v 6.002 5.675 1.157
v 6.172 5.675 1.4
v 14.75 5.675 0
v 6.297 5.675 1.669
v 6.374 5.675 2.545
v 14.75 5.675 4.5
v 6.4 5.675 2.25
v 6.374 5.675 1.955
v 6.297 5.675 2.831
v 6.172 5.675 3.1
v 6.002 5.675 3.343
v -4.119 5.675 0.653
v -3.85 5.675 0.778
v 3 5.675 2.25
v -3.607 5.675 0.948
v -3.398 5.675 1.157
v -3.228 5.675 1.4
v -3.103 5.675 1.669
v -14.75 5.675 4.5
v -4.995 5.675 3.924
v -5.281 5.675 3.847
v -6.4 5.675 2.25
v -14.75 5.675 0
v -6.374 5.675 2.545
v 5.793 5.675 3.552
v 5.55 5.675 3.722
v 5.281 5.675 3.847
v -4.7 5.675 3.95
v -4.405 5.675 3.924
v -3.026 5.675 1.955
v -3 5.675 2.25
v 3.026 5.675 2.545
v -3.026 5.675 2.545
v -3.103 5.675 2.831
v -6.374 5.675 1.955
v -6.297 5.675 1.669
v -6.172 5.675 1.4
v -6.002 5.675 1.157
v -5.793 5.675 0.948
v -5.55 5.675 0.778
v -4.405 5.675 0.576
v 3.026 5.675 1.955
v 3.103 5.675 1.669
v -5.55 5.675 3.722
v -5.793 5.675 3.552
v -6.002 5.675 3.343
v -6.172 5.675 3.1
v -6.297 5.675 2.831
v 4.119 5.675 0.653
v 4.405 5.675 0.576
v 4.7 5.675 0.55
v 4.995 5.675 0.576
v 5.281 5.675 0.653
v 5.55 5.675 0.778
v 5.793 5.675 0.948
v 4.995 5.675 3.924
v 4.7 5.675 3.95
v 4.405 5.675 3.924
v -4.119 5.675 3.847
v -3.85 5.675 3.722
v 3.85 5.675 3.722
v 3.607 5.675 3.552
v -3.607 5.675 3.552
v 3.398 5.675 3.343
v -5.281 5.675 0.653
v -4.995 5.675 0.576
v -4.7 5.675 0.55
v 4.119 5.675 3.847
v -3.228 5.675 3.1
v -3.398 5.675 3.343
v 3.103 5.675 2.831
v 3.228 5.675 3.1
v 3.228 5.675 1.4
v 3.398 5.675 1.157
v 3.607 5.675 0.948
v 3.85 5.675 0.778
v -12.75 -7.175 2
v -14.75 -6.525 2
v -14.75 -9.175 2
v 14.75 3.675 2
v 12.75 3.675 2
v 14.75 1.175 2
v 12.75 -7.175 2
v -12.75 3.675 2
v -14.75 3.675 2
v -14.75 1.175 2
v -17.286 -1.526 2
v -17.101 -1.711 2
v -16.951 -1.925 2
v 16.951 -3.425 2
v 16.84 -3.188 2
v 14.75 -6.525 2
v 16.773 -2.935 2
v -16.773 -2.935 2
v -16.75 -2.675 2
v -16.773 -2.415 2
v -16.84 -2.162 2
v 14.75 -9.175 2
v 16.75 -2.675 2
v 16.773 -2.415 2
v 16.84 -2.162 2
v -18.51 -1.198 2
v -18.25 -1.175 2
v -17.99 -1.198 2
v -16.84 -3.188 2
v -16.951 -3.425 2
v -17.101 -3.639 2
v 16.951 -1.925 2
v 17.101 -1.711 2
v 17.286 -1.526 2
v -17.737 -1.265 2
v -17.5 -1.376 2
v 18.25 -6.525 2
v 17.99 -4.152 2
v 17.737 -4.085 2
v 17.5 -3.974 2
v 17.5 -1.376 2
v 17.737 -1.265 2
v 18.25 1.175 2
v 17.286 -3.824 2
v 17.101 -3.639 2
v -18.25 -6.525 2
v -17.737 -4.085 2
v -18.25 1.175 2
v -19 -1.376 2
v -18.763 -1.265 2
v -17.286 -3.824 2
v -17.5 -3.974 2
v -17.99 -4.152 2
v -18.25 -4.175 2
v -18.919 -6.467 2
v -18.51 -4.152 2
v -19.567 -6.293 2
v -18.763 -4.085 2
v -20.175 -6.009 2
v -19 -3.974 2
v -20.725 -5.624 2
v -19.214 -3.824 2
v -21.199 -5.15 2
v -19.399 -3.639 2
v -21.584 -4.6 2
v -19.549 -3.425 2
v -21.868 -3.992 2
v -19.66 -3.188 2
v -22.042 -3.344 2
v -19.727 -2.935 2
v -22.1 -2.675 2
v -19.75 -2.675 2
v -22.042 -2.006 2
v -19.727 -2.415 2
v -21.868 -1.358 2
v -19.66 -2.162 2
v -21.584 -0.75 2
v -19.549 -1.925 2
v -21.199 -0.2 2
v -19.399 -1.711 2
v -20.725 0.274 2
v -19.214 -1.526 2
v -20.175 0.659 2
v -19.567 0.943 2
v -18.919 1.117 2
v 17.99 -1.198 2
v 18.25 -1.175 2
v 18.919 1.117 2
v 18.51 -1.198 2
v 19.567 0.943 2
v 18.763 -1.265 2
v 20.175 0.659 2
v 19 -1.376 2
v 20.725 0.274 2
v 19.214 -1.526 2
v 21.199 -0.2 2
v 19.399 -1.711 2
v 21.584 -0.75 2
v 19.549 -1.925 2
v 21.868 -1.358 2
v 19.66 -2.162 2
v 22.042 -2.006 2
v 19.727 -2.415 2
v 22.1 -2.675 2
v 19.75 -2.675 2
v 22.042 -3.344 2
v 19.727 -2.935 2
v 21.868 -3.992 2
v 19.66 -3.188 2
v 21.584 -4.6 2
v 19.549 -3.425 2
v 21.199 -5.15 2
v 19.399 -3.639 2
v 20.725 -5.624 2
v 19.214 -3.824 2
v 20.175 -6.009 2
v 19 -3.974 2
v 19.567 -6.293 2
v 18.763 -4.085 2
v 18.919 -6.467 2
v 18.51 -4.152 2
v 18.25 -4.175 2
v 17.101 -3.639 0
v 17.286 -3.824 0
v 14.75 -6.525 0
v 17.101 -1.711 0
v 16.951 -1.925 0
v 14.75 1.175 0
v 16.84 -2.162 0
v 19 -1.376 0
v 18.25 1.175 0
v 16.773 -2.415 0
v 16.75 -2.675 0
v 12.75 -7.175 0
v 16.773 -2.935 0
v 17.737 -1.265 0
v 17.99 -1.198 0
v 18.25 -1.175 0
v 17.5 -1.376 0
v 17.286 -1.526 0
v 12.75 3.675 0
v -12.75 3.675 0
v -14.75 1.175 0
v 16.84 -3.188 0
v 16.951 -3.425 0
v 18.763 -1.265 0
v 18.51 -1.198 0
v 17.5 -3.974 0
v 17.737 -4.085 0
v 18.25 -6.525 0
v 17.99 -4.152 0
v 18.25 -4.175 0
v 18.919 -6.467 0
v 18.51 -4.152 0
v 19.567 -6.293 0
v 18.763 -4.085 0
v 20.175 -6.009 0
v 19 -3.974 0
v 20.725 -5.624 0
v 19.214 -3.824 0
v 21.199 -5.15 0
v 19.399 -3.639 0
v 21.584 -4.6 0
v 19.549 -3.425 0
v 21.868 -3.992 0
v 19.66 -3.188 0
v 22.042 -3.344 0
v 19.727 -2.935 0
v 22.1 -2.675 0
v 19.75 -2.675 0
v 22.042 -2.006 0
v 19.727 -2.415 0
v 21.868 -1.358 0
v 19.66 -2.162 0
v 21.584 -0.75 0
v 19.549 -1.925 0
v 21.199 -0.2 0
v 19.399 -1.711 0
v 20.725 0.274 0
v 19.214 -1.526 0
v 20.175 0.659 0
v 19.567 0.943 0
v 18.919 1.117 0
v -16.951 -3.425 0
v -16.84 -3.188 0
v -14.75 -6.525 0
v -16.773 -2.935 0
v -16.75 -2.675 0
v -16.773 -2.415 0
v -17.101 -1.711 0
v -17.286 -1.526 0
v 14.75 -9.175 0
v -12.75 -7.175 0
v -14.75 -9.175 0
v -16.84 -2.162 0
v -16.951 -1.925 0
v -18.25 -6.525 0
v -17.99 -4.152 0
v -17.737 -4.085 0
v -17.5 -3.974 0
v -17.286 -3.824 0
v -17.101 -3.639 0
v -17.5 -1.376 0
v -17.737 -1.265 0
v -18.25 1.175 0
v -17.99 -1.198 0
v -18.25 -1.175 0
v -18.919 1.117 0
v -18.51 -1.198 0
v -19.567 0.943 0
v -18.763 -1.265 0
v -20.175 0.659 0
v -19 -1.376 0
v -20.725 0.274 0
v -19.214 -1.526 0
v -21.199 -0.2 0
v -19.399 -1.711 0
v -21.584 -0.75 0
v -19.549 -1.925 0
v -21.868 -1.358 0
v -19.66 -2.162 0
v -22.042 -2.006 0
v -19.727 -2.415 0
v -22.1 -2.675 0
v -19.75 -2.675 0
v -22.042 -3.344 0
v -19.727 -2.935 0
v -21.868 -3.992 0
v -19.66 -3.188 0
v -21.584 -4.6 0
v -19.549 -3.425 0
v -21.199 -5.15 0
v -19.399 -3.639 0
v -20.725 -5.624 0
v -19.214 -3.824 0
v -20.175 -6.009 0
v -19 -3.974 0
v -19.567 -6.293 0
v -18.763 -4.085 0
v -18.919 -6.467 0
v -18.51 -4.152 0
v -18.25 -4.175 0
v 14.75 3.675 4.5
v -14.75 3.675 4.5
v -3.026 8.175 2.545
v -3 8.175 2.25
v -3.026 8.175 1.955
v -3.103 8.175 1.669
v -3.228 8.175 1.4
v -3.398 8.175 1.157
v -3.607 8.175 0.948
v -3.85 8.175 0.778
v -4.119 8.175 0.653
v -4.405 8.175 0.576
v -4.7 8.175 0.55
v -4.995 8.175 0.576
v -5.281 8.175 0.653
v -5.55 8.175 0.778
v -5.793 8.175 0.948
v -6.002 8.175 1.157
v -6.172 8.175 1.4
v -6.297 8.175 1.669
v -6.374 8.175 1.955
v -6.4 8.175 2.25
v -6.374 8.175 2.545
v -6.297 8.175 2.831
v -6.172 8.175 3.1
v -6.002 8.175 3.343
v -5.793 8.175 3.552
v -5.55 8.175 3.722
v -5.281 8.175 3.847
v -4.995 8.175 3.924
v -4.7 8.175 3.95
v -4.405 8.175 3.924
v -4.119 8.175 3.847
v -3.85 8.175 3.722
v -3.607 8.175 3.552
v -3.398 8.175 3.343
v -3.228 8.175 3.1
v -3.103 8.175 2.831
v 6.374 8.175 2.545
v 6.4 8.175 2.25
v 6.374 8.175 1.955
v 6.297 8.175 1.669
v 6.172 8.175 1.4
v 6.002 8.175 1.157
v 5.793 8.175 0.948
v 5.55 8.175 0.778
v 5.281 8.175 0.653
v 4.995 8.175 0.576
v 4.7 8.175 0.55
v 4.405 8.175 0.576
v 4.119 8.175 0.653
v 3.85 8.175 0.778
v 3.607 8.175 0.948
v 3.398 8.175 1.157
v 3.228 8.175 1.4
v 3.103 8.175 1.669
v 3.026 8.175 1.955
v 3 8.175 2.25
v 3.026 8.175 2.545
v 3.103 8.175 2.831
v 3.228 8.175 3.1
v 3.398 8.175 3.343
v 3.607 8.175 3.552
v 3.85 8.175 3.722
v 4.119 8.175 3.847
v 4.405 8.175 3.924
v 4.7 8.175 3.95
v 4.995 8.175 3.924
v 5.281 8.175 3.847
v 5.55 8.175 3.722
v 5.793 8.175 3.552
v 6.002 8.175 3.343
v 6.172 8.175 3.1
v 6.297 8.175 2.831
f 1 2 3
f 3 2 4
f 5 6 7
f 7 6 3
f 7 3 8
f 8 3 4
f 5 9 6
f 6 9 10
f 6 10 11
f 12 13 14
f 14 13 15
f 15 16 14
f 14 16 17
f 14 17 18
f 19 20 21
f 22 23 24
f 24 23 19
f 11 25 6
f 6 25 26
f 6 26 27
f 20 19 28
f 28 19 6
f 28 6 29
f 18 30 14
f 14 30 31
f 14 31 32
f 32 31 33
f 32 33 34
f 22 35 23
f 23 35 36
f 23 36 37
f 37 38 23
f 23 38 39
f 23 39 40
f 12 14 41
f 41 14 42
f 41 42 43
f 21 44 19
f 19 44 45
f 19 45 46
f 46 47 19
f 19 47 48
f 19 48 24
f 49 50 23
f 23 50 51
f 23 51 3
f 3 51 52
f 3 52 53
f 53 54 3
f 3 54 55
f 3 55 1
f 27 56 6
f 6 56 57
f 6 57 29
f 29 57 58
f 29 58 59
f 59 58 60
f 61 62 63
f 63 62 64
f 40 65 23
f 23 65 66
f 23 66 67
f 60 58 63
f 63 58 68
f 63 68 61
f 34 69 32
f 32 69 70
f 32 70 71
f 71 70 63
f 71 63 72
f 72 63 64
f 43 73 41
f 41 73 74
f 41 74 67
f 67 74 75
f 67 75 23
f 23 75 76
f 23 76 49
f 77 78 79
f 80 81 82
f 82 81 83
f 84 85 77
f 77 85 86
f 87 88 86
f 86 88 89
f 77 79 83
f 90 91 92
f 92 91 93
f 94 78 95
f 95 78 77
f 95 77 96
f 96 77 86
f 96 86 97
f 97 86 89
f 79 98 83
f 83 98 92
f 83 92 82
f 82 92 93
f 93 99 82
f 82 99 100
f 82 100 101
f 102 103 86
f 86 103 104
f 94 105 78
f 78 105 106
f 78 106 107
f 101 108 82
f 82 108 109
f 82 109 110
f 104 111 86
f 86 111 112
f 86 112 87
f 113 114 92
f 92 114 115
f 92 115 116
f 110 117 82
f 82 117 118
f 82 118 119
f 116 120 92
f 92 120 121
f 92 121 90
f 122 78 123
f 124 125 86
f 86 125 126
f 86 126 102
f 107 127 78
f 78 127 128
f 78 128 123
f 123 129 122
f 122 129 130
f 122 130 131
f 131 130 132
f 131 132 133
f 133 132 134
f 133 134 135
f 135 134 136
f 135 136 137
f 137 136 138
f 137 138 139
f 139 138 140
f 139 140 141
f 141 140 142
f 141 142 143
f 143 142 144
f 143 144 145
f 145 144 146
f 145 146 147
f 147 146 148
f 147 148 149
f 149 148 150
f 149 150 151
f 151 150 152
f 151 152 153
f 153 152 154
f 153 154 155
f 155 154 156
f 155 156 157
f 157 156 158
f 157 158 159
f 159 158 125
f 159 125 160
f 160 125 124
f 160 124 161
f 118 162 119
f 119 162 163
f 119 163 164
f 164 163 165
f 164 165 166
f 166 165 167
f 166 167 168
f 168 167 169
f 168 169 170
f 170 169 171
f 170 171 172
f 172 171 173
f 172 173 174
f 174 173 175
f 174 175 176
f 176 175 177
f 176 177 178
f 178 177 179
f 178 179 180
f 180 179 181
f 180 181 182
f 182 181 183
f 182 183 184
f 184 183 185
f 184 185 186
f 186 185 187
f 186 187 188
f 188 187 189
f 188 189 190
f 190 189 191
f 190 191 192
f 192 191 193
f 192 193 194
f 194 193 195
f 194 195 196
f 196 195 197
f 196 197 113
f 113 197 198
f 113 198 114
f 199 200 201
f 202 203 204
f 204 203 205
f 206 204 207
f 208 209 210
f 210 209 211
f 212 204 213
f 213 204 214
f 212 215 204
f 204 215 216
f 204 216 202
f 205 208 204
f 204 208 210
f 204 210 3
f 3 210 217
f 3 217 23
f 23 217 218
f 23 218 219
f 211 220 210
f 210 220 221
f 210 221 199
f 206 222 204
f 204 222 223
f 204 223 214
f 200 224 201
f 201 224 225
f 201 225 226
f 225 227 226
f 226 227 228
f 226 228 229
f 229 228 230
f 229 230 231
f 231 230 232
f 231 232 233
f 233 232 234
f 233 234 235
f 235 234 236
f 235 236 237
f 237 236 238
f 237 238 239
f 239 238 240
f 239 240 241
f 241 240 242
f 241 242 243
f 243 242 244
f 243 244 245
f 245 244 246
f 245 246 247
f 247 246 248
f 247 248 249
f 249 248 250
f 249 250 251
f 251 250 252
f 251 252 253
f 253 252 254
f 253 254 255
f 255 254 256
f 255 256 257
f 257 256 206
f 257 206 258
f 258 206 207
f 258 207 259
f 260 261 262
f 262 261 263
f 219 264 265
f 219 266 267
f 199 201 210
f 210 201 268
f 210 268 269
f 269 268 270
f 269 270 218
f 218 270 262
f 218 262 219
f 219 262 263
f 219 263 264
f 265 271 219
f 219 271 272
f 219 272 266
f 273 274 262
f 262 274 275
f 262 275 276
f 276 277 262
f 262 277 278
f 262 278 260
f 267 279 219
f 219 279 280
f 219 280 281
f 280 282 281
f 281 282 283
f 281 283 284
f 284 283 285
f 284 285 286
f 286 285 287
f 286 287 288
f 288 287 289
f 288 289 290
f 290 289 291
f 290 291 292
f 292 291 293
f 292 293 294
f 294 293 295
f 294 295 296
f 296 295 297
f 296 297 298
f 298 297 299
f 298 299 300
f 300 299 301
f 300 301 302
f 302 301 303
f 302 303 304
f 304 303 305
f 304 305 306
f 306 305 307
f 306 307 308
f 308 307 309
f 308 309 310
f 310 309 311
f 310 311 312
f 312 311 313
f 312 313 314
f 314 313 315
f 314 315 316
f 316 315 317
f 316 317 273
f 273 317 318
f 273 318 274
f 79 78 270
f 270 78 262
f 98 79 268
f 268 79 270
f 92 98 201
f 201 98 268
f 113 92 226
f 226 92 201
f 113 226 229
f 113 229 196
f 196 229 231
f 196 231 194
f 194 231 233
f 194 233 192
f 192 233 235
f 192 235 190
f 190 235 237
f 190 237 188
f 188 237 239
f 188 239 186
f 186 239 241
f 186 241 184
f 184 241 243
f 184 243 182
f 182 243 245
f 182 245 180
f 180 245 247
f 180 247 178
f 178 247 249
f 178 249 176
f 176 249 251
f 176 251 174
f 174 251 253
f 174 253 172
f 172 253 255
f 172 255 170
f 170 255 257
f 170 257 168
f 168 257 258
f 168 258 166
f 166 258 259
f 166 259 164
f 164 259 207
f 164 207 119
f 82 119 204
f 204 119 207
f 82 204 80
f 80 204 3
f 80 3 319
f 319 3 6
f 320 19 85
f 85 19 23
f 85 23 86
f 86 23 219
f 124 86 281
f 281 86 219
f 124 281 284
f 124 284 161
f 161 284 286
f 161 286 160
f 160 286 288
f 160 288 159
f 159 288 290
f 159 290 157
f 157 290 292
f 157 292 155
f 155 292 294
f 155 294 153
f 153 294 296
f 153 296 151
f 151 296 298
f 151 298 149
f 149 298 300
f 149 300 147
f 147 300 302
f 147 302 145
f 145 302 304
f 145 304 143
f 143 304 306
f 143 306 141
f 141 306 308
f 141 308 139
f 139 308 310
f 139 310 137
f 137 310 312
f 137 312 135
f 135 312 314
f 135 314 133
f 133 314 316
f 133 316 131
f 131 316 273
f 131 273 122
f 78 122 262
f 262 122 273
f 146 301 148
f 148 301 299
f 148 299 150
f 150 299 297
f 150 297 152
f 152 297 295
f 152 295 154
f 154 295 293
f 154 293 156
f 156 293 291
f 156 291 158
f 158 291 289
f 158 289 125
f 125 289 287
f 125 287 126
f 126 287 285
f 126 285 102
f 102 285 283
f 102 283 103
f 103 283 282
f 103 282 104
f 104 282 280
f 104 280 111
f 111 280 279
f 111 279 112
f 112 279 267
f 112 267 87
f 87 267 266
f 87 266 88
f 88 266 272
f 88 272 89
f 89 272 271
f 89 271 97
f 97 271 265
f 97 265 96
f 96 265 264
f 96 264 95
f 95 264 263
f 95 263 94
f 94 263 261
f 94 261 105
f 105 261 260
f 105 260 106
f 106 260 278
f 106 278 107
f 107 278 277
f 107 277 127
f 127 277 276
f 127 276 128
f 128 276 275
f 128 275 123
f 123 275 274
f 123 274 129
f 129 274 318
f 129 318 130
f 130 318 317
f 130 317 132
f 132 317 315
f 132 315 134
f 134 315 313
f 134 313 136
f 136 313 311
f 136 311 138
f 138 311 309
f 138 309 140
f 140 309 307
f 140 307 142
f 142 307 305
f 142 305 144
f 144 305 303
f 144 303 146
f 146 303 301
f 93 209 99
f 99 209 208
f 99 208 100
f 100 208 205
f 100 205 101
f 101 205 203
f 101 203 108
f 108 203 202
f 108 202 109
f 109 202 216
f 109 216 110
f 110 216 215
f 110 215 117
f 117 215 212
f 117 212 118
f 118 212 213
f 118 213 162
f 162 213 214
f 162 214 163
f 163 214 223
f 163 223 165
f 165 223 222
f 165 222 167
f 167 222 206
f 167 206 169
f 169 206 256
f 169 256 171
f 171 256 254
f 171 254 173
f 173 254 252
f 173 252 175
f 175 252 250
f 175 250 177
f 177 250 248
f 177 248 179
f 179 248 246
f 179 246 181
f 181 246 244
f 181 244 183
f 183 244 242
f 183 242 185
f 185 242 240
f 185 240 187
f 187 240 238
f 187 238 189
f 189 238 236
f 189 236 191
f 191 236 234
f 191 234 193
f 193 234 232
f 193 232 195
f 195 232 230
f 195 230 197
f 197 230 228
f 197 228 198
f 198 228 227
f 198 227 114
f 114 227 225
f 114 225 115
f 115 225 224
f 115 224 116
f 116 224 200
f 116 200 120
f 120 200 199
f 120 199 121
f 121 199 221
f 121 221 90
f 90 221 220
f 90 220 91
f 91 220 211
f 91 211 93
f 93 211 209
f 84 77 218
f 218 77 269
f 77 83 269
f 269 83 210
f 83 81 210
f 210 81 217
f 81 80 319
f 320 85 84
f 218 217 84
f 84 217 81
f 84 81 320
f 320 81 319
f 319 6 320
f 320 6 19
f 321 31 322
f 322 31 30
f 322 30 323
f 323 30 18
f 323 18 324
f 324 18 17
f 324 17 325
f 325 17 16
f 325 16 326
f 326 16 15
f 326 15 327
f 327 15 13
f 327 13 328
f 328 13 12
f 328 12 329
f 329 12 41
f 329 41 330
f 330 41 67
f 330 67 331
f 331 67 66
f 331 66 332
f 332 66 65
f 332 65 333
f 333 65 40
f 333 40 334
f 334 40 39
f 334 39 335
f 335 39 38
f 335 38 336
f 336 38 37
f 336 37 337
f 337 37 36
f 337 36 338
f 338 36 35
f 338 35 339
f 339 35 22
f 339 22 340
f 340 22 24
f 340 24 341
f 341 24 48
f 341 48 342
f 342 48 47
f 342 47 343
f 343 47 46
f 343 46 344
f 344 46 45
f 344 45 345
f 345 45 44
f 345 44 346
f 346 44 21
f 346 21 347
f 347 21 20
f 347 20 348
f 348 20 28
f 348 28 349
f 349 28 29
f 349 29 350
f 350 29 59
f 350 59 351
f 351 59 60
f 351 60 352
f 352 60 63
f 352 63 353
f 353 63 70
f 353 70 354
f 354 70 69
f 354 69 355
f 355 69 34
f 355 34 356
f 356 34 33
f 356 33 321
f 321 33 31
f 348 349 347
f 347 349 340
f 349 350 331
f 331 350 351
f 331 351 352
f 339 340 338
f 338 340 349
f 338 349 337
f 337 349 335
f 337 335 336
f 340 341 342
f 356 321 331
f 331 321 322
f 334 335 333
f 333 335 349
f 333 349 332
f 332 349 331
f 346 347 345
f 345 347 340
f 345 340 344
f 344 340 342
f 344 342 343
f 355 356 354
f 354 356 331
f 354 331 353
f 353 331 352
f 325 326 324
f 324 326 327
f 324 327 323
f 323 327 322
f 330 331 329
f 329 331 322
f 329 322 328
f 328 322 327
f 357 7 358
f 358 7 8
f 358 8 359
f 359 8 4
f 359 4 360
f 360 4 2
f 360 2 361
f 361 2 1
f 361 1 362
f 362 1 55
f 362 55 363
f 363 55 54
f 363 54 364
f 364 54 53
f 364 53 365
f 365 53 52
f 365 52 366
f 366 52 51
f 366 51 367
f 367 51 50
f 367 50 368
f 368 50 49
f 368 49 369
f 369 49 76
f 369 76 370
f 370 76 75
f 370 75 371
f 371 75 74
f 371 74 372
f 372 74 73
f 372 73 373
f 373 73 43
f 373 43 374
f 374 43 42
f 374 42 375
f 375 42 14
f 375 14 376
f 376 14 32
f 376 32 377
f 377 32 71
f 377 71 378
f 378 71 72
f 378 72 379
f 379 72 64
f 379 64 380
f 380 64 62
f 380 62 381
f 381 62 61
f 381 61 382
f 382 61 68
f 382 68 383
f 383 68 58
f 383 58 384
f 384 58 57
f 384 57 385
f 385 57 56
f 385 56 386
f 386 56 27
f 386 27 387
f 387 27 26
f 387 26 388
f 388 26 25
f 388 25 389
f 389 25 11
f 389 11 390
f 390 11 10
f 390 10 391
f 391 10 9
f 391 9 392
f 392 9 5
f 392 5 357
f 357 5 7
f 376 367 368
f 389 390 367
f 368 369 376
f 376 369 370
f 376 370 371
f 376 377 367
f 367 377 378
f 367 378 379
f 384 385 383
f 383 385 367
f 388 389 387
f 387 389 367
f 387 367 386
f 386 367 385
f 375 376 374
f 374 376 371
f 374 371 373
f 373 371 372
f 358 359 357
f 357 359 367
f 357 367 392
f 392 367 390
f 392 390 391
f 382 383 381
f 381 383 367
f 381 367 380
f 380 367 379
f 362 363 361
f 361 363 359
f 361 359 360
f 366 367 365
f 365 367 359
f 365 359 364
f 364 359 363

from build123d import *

# Parameters (mm, degrees)
SKETCH1_R           = 1.5
SKETCH1_W           = 25.5
SKETCH1_H           = 10.85
BOSS_EXTRUDE1_DEPTH = 2
SKETCH2_W           = 29.5
SKETCH2_H           = 2
BOSS_EXTRUDE2_DEPTH = 2.5
SKETCH3_R           = 1.7
BOSS_EXTRUDE3_DEPTH = 2.5


with BuildPart() as part:
    # Sketch1 → Boss-Extrude1 (new body)
    with BuildSketch(Plane.XY):
        with BuildLine():
            Line((-14.75, 5.675), (-14.75, 1.175))
            Line((-14.75, 1.175), (-18.25, 1.175))
            ThreePointArc((-18.25, 1.175), (-22.1, -2.675), (-18.25, -6.525))
            Line((-18.25, -6.525), (-14.75, -6.525))
            Line((-14.75, -6.525), (-14.75, -9.175))
            Line((-14.75, -9.175), (14.75, -9.175))
            Line((14.75, -9.175), (14.75, -6.525))
            Line((14.75, -6.525), (18.25, -6.525))
            ThreePointArc((18.25, -6.525), (22.1, -2.675), (18.25, 1.175))
            Line((18.25, 1.175), (14.75, 1.175))
            Line((14.75, 1.175), (14.75, 5.675))
            Line((14.75, 5.675), (-14.75, 5.675))
        make_face()
        with Locations((-18.25, -2.675)):
            Circle(SKETCH1_R, mode=Mode.SUBTRACT)
        with Locations(Location((18.25, -2.675, 0), (0, 0, 180))):
            Circle(SKETCH1_R, mode=Mode.SUBTRACT)
        with Locations((0, -1.75)):
            Rectangle(SKETCH1_W, SKETCH1_H, mode=Mode.SUBTRACT)
    extrude(amount=BOSS_EXTRUDE1_DEPTH)

    # Sketch2 → Boss-Extrude2 (add)
    with BuildSketch(Plane.XY.offset(2)):
        with Locations((0, 4.675)):
            Rectangle(SKETCH2_W, SKETCH2_H)
    extrude(amount=BOSS_EXTRUDE2_DEPTH)

    # Sketch3 → Boss-Extrude3 (add)
    with BuildSketch(Plane(origin=(0, 5.675, 0), x_dir=(1, 0, 0), z_dir=(0, 1, 0))):
        with Locations((-4.7, -2.25)):
            Circle(SKETCH3_R)
        with Locations((4.7, -2.25)):
            Circle(SKETCH3_R)
    extrude(amount=BOSS_EXTRUDE3_DEPTH)


solid = part.part
